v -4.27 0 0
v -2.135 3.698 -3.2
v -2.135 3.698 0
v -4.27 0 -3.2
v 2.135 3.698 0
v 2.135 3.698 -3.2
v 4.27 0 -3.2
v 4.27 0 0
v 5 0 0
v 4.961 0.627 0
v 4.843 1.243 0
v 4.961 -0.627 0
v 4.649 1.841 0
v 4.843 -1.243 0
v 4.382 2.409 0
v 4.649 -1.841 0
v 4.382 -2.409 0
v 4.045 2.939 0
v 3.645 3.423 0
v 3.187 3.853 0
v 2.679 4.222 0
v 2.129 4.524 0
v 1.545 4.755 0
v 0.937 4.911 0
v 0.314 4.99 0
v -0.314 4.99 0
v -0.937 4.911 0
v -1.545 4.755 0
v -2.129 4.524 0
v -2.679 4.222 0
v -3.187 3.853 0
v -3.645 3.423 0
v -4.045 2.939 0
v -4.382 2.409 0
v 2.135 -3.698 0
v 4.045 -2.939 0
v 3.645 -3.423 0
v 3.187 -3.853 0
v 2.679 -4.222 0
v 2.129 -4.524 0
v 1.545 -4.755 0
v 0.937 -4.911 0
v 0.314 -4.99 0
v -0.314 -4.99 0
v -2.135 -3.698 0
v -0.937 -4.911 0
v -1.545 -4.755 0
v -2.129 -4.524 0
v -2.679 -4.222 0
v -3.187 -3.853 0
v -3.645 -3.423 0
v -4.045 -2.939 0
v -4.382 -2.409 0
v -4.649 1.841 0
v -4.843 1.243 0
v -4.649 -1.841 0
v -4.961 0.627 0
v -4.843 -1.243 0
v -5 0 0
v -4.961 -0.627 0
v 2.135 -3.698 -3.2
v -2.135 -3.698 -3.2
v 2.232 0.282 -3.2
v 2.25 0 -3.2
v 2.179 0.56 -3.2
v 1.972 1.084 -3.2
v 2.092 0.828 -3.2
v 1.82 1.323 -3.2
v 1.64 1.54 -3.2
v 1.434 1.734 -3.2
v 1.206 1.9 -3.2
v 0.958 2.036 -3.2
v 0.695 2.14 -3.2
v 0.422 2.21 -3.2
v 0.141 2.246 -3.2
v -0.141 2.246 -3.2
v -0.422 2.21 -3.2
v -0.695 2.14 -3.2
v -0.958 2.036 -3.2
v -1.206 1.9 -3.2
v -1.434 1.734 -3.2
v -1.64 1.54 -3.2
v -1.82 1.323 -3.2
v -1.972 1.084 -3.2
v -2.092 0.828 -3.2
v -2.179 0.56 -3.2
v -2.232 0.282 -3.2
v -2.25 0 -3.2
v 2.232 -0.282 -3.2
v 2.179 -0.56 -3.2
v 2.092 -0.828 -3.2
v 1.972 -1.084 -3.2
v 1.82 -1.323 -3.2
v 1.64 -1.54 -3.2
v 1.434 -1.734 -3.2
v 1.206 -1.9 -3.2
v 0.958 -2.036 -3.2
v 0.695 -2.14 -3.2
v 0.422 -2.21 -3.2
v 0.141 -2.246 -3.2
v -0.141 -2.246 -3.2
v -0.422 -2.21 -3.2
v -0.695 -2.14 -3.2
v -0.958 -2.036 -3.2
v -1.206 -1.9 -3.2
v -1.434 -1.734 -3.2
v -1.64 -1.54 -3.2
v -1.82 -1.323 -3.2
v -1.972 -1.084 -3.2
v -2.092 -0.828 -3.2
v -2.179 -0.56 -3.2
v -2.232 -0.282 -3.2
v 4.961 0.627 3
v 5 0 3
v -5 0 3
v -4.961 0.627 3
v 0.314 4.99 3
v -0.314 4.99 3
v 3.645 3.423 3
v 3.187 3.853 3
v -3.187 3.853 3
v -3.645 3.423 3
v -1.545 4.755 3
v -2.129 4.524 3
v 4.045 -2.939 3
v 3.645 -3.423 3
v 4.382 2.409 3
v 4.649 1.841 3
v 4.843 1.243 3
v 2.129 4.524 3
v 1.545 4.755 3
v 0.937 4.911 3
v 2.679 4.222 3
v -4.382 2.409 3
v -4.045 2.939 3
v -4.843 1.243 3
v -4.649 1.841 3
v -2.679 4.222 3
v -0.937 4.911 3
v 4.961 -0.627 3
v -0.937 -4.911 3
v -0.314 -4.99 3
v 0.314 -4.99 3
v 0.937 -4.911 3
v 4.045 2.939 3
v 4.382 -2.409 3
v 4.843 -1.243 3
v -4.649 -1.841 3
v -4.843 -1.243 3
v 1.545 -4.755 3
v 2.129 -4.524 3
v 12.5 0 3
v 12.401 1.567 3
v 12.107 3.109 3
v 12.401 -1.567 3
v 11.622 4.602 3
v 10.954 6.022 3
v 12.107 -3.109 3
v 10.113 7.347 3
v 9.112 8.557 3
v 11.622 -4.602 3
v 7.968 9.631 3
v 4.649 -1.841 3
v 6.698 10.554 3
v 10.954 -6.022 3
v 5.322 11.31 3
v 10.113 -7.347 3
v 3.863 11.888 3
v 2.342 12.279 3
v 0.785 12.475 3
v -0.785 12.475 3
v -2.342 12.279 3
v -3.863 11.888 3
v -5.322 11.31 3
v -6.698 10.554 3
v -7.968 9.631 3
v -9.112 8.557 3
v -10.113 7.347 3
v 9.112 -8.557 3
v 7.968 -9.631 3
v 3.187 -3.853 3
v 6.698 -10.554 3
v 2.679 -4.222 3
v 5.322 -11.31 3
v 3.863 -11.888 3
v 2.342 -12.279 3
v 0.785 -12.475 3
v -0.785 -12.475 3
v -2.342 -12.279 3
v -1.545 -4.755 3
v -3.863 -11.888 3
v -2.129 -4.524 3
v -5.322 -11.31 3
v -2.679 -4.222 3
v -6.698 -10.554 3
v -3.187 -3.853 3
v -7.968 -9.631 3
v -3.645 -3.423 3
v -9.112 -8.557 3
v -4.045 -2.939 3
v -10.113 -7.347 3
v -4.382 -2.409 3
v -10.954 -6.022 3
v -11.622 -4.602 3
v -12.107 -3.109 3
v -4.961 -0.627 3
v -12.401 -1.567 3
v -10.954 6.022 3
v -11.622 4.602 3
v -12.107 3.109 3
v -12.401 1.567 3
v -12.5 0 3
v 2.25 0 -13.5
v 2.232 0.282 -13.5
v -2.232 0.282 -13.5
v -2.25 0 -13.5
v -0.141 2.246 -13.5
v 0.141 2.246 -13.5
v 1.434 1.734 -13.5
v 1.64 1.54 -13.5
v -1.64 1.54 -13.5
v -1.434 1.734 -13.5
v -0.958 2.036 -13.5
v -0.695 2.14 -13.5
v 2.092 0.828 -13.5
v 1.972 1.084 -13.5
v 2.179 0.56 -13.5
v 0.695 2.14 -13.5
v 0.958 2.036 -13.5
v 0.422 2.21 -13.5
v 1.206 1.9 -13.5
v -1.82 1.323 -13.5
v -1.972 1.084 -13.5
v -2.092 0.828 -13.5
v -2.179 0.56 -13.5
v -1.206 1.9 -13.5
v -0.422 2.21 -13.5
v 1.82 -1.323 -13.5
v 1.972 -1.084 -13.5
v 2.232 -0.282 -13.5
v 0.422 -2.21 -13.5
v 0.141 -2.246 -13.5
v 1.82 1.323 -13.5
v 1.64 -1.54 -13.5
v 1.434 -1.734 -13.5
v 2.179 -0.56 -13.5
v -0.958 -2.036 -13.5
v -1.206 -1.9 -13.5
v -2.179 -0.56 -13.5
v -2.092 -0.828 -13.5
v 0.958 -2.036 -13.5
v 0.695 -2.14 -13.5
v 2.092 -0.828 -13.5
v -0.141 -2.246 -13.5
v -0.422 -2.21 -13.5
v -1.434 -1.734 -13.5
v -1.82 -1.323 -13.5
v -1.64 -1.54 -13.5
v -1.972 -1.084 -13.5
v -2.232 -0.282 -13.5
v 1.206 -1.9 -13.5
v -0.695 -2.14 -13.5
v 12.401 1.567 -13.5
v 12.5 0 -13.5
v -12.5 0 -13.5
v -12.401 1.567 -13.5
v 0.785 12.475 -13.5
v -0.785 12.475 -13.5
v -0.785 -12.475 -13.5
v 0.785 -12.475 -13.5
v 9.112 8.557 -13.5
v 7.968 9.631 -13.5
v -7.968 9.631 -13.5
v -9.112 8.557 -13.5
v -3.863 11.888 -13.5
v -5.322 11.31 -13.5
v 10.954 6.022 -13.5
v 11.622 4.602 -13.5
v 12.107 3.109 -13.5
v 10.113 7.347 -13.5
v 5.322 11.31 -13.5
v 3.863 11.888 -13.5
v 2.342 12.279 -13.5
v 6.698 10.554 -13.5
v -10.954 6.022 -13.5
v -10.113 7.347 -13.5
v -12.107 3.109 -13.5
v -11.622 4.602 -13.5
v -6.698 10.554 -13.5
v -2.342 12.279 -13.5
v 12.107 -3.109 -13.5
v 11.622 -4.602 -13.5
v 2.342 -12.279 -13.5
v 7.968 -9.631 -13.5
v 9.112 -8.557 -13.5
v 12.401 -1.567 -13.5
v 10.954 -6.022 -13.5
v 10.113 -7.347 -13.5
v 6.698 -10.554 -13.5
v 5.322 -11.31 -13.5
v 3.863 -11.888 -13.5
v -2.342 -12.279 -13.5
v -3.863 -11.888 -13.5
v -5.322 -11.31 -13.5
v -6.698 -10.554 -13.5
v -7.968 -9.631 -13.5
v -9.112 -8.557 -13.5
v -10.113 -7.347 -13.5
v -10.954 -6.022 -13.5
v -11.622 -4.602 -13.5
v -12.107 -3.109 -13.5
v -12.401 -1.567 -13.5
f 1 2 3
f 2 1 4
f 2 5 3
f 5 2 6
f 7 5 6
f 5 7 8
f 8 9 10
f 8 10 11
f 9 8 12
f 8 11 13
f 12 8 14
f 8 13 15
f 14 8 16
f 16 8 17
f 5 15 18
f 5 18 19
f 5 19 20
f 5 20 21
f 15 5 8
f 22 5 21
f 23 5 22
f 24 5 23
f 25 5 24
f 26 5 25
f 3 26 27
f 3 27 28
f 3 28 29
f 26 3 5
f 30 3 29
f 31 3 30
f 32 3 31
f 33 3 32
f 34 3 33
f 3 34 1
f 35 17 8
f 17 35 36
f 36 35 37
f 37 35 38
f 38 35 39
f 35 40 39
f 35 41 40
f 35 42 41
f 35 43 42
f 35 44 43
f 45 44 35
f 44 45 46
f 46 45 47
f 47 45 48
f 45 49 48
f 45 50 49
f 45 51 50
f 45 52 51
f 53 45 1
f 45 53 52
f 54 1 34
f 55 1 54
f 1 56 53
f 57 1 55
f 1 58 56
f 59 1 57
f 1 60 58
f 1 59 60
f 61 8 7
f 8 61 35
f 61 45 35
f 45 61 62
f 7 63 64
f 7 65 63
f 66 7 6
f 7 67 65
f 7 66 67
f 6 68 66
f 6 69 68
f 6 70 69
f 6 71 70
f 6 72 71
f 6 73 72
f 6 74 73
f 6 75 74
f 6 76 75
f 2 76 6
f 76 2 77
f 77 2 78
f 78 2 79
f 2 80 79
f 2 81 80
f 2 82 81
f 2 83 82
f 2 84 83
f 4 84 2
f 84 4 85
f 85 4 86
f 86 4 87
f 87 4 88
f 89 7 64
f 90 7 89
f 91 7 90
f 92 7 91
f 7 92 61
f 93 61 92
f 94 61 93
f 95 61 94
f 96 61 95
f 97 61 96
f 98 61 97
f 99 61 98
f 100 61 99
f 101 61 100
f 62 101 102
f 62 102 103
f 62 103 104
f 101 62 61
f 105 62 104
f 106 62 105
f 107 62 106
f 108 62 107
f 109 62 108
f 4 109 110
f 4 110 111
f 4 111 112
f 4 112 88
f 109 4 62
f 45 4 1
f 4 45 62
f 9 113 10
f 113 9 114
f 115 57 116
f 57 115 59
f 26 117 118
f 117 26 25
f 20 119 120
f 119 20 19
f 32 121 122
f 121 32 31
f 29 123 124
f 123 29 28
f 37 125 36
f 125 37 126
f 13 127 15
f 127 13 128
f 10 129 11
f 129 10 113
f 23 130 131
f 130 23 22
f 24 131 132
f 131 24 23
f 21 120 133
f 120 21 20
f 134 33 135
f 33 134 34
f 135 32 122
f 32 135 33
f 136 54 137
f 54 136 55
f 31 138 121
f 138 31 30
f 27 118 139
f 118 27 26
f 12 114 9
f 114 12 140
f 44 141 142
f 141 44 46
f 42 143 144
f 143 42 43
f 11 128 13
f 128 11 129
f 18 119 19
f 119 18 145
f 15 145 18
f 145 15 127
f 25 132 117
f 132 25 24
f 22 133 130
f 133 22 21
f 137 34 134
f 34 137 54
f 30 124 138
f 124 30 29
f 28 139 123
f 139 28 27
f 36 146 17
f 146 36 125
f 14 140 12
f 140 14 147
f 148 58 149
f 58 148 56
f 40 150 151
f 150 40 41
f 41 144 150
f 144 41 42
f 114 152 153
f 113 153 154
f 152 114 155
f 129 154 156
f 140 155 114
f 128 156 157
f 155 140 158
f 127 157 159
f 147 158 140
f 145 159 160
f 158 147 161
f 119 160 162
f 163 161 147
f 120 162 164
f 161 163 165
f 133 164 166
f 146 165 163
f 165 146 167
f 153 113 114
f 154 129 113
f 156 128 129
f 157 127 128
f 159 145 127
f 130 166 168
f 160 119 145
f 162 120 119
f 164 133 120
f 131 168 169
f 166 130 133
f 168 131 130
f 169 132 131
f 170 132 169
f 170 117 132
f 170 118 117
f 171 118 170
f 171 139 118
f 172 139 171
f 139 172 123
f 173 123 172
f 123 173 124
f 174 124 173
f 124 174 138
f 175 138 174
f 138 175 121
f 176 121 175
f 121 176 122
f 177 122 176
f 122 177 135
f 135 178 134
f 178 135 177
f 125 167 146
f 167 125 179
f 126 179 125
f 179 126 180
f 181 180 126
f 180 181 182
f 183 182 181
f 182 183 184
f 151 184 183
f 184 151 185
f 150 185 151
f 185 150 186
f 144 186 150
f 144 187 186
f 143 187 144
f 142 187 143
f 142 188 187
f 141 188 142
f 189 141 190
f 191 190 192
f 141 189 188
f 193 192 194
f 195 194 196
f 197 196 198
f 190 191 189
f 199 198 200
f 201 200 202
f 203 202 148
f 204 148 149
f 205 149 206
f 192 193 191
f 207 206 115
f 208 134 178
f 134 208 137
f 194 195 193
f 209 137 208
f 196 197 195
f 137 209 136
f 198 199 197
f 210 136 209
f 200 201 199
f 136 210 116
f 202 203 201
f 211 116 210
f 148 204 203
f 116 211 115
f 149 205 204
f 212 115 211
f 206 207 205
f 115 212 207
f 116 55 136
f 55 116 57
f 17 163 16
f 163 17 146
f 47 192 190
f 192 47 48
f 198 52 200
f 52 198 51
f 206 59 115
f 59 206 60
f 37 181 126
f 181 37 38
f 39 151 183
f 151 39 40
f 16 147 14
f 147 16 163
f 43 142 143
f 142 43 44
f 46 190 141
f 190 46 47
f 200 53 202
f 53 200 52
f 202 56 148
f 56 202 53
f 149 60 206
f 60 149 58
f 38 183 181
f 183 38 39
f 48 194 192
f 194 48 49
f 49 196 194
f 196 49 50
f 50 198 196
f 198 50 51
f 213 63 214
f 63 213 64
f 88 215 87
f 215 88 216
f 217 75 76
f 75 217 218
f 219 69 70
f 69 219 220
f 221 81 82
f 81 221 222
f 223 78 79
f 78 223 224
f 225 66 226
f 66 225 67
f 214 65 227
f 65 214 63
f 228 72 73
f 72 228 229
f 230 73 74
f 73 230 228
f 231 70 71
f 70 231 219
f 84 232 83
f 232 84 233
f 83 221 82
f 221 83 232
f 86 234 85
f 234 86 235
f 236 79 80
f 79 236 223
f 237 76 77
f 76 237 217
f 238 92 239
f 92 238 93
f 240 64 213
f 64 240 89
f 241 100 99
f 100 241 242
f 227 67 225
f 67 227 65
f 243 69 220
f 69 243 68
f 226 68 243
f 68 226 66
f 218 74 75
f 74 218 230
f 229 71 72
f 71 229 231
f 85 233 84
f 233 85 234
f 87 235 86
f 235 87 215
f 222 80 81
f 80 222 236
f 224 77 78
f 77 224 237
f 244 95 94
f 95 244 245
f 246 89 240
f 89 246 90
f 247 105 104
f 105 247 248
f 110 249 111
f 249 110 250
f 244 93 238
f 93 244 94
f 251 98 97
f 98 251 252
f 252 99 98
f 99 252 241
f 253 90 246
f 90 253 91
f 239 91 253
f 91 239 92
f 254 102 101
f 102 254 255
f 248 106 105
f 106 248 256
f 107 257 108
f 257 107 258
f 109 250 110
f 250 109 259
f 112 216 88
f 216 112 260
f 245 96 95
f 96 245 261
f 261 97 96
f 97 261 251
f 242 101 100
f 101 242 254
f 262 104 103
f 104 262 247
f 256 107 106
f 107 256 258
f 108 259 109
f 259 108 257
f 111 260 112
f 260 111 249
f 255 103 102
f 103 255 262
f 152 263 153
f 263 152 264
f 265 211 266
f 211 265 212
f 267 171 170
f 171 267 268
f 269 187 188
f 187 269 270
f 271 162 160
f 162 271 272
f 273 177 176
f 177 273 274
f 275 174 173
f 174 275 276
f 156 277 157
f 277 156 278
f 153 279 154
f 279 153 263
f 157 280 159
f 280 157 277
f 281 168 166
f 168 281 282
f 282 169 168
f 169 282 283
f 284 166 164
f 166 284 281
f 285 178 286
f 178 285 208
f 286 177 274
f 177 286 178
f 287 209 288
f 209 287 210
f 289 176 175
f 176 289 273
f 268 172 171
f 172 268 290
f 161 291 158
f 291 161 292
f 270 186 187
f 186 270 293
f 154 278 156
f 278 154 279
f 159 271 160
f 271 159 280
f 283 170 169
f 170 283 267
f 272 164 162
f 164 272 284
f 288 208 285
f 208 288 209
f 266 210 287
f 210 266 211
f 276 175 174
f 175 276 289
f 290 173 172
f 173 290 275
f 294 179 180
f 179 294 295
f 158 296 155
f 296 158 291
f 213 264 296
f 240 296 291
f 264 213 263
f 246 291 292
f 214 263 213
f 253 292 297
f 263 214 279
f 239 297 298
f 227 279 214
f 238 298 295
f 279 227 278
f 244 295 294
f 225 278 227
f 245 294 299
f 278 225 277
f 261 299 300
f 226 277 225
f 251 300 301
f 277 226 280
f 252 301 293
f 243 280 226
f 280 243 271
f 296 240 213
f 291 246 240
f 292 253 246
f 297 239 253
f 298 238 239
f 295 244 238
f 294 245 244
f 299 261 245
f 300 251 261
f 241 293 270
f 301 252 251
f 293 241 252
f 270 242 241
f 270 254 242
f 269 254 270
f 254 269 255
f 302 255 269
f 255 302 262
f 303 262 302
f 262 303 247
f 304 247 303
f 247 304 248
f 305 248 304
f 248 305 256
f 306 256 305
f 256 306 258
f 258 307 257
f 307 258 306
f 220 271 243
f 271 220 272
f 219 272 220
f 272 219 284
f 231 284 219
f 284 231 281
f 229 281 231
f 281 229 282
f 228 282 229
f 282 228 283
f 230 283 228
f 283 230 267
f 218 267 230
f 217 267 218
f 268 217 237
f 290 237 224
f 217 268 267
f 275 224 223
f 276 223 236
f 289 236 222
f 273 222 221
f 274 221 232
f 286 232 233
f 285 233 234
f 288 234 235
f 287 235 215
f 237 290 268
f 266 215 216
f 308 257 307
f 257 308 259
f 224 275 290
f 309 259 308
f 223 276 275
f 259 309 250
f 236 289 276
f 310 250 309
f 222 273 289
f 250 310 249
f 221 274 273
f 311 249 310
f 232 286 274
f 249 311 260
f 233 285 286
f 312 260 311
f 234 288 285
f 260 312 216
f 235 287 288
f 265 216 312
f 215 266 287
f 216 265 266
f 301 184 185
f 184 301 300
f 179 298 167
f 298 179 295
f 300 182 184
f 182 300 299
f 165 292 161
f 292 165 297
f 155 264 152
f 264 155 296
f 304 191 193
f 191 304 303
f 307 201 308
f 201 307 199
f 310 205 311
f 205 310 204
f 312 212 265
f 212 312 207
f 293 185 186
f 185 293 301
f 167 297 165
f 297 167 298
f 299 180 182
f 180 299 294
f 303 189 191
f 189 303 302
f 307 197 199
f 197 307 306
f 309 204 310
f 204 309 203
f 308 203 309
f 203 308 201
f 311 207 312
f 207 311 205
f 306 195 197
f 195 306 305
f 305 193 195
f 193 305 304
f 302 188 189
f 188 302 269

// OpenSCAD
$fn = 50;

difference() {
	union() {
		translate(v = [0, 0, -13.5]) {
			cylinder(h = 16.5, r = 12.5);
		}
	}
	union() {
		translate(v = [0, 0, 0]) {
			rotate(a = [0, 0, 0]) {
				difference() {
					union() {
						translate(v = [0, 0, -3.2]) {
							linear_extrude(height = 3.2) {
								polygon(points = [[4.2698, 0.0], [2.1349000000000005, 3.697755269078796], [-2.134899999999999, 3.6977552690787965], [-4.2698, 5.228996902999369e-16], [-2.134900000000002, -3.6977552690787956], [2.1348999999999974, -3.697755269078798]]);
							}
						}
					}
					union();
				}
			}
		}
		#cylinder(h = 3, r = 5.0);
		#translate(v = [0, 0, -100.0]) {
			cylinder(h = 200, r = 2.25);
		}
	}
}
